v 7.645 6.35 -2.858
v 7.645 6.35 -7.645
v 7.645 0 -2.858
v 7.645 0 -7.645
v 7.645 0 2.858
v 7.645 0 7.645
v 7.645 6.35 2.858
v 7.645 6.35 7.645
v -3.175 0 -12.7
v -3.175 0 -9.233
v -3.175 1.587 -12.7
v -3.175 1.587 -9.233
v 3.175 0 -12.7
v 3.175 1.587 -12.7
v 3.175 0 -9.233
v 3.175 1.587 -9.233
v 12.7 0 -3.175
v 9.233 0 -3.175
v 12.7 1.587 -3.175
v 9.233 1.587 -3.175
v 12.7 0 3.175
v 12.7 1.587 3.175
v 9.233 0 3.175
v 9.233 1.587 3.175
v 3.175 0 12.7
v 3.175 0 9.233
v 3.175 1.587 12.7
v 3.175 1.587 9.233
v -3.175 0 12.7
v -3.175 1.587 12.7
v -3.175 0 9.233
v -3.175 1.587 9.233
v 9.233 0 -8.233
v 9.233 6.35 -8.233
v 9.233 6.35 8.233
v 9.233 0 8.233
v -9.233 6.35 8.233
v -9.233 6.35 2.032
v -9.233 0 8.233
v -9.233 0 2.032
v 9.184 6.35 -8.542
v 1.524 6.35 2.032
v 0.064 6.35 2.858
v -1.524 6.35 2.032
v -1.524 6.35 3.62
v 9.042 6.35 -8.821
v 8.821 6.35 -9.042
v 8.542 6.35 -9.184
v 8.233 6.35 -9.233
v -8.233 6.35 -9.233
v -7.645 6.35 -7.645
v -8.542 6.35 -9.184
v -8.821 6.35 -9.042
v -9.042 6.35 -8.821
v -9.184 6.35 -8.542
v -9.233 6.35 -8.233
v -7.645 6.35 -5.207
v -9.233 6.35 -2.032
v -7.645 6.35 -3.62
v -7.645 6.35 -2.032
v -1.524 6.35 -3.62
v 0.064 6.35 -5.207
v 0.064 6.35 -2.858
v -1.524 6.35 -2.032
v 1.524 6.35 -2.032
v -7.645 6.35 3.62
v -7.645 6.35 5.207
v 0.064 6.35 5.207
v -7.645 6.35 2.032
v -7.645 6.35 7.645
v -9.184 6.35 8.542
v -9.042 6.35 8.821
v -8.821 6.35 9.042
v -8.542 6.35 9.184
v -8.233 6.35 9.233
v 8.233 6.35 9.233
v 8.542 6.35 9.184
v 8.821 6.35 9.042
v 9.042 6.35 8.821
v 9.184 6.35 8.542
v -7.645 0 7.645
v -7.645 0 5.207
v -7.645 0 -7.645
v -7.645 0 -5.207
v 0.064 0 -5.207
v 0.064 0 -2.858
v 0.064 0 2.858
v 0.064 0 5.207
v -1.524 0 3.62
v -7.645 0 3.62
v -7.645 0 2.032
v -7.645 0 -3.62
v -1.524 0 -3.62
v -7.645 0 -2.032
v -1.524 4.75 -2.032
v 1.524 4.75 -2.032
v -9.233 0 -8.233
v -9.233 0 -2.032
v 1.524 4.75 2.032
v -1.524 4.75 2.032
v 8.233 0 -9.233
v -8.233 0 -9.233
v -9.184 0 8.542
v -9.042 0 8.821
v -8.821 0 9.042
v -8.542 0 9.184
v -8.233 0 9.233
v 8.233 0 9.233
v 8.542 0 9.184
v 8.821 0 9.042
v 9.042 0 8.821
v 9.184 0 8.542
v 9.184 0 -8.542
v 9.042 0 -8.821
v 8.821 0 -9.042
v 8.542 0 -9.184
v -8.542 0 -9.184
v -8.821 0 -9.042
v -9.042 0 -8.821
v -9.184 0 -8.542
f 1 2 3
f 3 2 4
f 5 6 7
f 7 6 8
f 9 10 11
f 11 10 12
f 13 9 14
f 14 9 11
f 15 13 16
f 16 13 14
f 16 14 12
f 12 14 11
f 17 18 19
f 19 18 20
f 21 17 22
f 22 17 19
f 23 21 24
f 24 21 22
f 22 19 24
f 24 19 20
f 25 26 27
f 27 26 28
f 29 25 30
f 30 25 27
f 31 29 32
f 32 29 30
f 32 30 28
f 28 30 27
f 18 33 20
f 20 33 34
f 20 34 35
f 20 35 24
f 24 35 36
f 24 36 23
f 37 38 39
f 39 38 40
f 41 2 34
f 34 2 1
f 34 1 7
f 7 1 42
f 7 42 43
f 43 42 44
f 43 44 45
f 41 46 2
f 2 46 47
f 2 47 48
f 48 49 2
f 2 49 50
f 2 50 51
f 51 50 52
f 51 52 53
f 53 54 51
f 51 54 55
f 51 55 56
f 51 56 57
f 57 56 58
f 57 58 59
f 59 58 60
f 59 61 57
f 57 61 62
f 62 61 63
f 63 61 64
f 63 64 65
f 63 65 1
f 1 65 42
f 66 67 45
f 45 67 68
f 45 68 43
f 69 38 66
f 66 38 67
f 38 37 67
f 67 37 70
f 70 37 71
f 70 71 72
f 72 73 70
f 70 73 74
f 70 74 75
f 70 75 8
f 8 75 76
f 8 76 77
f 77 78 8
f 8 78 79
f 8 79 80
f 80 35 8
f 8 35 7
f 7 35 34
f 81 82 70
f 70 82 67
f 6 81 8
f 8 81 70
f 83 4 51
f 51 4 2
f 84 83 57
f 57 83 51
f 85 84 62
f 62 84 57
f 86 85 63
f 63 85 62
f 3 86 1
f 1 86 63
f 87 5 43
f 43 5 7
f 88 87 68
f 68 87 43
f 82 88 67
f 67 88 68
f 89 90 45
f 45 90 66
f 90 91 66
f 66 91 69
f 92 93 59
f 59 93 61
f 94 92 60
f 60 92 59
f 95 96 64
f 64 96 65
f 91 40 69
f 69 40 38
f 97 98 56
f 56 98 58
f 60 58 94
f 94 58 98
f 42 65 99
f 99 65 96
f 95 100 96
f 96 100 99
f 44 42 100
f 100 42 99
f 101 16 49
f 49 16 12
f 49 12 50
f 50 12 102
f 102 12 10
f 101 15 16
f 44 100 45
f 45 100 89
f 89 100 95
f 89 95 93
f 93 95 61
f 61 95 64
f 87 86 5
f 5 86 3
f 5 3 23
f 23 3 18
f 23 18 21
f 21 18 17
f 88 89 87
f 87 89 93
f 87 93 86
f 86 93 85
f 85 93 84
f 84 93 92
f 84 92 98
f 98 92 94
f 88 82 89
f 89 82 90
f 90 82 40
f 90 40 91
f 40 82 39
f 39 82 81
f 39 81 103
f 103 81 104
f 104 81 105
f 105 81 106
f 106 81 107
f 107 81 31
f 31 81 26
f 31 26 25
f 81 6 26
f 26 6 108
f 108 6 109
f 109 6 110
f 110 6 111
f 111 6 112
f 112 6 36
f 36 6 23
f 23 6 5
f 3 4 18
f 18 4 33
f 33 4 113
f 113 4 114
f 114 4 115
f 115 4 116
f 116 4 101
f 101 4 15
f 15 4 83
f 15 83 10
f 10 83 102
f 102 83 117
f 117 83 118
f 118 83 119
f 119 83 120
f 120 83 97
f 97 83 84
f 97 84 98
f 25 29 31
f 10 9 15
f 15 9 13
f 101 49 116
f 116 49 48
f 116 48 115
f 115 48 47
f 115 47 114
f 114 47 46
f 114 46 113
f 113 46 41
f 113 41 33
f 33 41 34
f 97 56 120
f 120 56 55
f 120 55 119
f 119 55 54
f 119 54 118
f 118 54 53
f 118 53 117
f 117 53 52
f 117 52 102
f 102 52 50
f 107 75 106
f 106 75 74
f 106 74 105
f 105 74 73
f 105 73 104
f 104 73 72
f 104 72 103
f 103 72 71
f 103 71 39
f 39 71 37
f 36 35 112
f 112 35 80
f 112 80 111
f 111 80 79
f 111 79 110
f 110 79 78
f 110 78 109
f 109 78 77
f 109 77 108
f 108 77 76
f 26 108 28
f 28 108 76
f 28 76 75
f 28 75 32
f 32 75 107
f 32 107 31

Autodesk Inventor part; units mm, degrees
ref_plane "YZ Plane" through (0, 0, 0) normal (1, 0, 0) x (0, 1, 0)
ref_plane "XZ Plane" through (0, 0, 0) normal (0, 1, 0) x (-1, 0, 0)
ref_plane "XY Plane" through (0, 0, 0) normal (0, 0, 1) x (1, 0, 0)
sketch "Sketch1" plane through (0, 0, 0) normal (0, 1, 0) x (-1, 0, 0)
  line L0 (-9.2329, 9.2329) -> (9.2329, 9.2329)
  line L1 (9.2329, -9.2329) -> (-9.2329, -9.2329)
  line L2 (-9.2329, -9.2329) -> (-9.2329, 9.2329)
  line L3 (-9.2329, 9.2329) -> (9.2329, -9.2329) construction
  line L4 (9.2329, 9.2329) -> (-9.2329, -9.2329) construction
  line L5 (-1.524, 2.032) -> (1.524, 2.032) construction
  line L6 (1.524, 2.032) -> (1.524, -2.032) construction
  line L7 (1.524, -2.032) -> (-1.524, -2.032) construction
  line L8 (-1.524, -2.032) -> (-1.524, 2.032) construction
  line L9 (-1.524, 2.032) -> (1.524, -2.032) construction
  line L10 (1.524, 2.032) -> (-1.524, -2.032) construction
  line L11 (1.524, 2.032) -> (9.2329, 2.032)
  line L12 (9.2329, -2.032) -> (1.524, -2.032)
  line L13 (1.524, -2.032) -> (1.524, 2.032)
  line L14 (9.2329, 9.2329) -> (9.2329, 2.032)
  line L15 (9.2329, -2.032) -> (9.2329, -9.2329)
  point P0 (0, 0)
  dimension "d0" = 18.4658
  dimension "d1" = 3.048
  dimension "d2" = 4.064
extrude "Extrusion1" add sketch "Sketch1" along normal blind 6.35
sketch "Sketch2" plane through (-1.524, 0, -2.032) normal (-1, 0, 0) x (0, 0, 1)
  line L0 (0, 0) -> (4.064, 0) projected
  line L1 (4.064, 0) -> (4.064, 6.35) projected
  line L2 (0, 6.35) -> (4.064, 6.35) projected
  line L3 (0, 0) -> (0, 6.35) projected
  line L4 (0, 4.7498) -> (4.064, 4.7498)
  line L5 (0, 5.5118) -> (0.762, 6.35)
  line L6 (3.302, 6.35) -> (4.064, 5.5118)
  line L7 (2.032, 4.7498) -> (2.032, 6.35) construction
  point P0 (2.032, 0)
  dimension "d17" = 1.6002
  dimension "d19" = 2.54
  dimension "d21" = 0.762
extrude "Extrusion2" cut sketch "Sketch2" against normal blind 3.048 contours L3 L5 L2 L6 L1 L4
sketch "Sketch6" plane through (0, 6.35, 0) normal (0, 1, 0) x (1, 0, 0)
  line L0 (1.524, -1.27) -> (-1.524, -1.27) projected
  line L1 (-1.524, -1.27) -> (-1.524, -2.032) projected
  line L2 (-1.524, -2.032) -> (-9.2329, -2.032) projected
  line L3 (-9.2329, -2.032) -> (-9.2329, -9.2329) projected
  line L4 (-9.2329, -9.2329) -> (9.2329, -9.2329) projected
  line L5 (9.2329, -9.2329) -> (9.2329, 9.2329) projected
  line L6 (9.2329, 9.2329) -> (-9.2329, 9.2329) projected
  line L7 (-9.2329, 9.2329) -> (-9.2329, 2.032) projected
  line L8 (-9.2329, 2.032) -> (-1.524, 2.032) projected
  line L9 (-1.524, 2.032) -> (-1.524, 1.27) projected
  line L10 (-1.524, 1.27) -> (1.524, 1.27) projected
  line L11 (1.524, 1.27) -> (1.524, -1.27) projected
  line L12 (-7.6454, 7.6454) -> (7.6454, 7.6454)
  line L13 (7.6454, 7.6454) -> (7.6454, -7.6454)
  line L14 (7.6454, -7.6454) -> (-7.6454, -7.6454)
  line L15 (-7.6454, -7.6454) -> (-7.6454, -3.6195)
  line L16 (-7.6454, -3.6195) -> (0.0635, -3.6195)
  line L17 (0.0635, -3.6195) -> (0.0635, -2.8575)
  line L18 (0.0635, -2.8575) -> (3.1115, -2.8575)
  line L19 (3.1115, -2.8575) -> (3.1115, 2.8575)
  line L20 (3.1115, 2.8575) -> (0.0635, 2.8575)
  line L21 (0.0635, 2.8575) -> (0.0635, 3.6195)
  line L22 (0.0635, 3.6195) -> (-7.6454, 3.6195)
  line L23 (-7.6454, 3.6195) -> (-7.6454, 7.6454)
  line L24 (-7.6454, 3.6195) -> (-1.524, 3.6195)
  line L25 (-1.524, 3.6195) -> (-1.524, -3.6195)
  line L26 (-1.524, -3.6195) -> (-7.6454, -3.6195)
  line L27 (-7.6454, -3.6195) -> (-7.6454, 3.6195)
  point P0 (0, 0)
  point P1 (-7.6454, -2.032)
  point P2 (-7.6454, 2.032)
  point P3 (-1.524, 2.032)
  dimension "d22" = 1.5875
extrude "Extrusion5" cut sketch "Sketch6" against normal through all contours L25 L16 L27 L2 | L8 L27 L22 L25
sketch "Sketch7" plane through (0, 6.35, 0) normal (0, 1, 0) x (1, 0, 0)
  line L0 (-7.6454, -3.6195) -> (-7.6454, -2.032) projected
  line L1 (-7.6454, -2.032) -> (-9.2329, -2.032) projected
  line L2 (-9.2329, -2.032) -> (-9.2329, -9.2329) projected
  line L3 (-9.2329, -9.2329) -> (9.2329, -9.2329) projected
  line L4 (9.2329, -9.2329) -> (9.2329, 9.2329) projected
  line L5 (9.2329, 9.2329) -> (-9.2329, 9.2329) projected
  line L6 (-9.2329, 9.2329) -> (-9.2329, 2.032) projected
  line L7 (-9.2329, 2.032) -> (-7.6454, 2.032) projected
  line L8 (-7.6454, 2.032) -> (-7.6454, 3.6195) projected
  line L9 (-7.6454, 3.6195) -> (-1.524, 3.6195) projected
  line L10 (-1.524, 3.6195) -> (-1.524, 1.27) projected
  line L11 (-1.524, 1.27) -> (1.524, 1.27) projected
  line L12 (1.524, 1.27) -> (1.524, -1.27) projected
  line L13 (1.524, -1.27) -> (-1.524, -1.27) projected
  line L14 (-1.524, -1.27) -> (-1.524, -3.6195) projected
  line L15 (-1.524, -3.6195) -> (-7.6454, -3.6195) projected
  line L16 (-7.6454, 7.6454) -> (7.6454, 7.6454)
  line L17 (7.6454, 7.6454) -> (7.6454, -7.6454)
  line L18 (7.6454, -7.6454) -> (-7.6454, -7.6454)
  line L19 (-7.6454, -7.6454) -> (-7.6454, -5.207)
  line L20 (-7.6454, -5.207) -> (0.0635, -5.207)
  line L21 (0.0635, -5.207) -> (0.0635, -2.8575)
  line L22 (0.0635, -2.8575) -> (3.1115, -2.8575)
  line L23 (3.1115, -2.8575) -> (3.1115, 2.8575)
  line L24 (3.1115, 2.8575) -> (0.0635, 2.8575)
  line L25 (0.0635, 2.8575) -> (0.0635, 5.207)
  line L26 (0.0635, 5.207) -> (-7.6454, 5.207)
  line L27 (-7.6454, 5.207) -> (-7.6454, 7.6454)
  point P0 (0, 0)
  dimension "d25" = 1.5875
extrude "Extrusion6" cut sketch "Sketch7" against normal through all contours L16 L17 L18 L19 L20 L21 L22 L23 L24 L25 L26 L27
sketch "Sketch8" plane through (0, 0, 0) normal (0, -1, 0) x (1, 0, 0)
  line L0 (-3.175, -12.7) -> (3.175, -12.7)
  line L1 (3.175, -12.7) -> (3.175, 12.7)
  line L2 (3.175, 12.7) -> (-3.175, 12.7)
  line L3 (-3.175, 12.7) -> (-3.175, -12.7)
  line L4 (-3.175, -12.7) -> (3.175, 12.7) construction
  line L5 (3.175, -12.7) -> (-3.175, 12.7) construction
  line L6 (0.0635, -5.207) -> (0.0635, -2.8575) projected
  line L7 (0.0635, -2.8575) -> (3.1115, -2.8575) projected
  line L8 (3.1115, -2.8575) -> (3.1115, 2.8575) projected
  line L9 (3.1115, 2.8575) -> (0.0635, 2.8575) projected
  line L10 (0.0635, 2.8575) -> (0.0635, 5.207) projected
  line L11 (0.0635, 5.207) -> (-7.6454, 5.207) projected
  line L12 (-7.6454, 5.207) -> (-7.6454, 7.6454) projected
  line L13 (-7.6454, 7.6454) -> (7.6454, 7.6454) projected
  line L14 (7.6454, 7.6454) -> (7.6454, -7.6454) projected
  line L15 (7.6454, -7.6454) -> (-7.6454, -7.6454) projected
  line L16 (-7.6454, -7.6454) -> (-7.6454, -5.207) projected
  line L17 (-7.6454, -5.207) -> (0.0635, -5.207) projected
  line L18 (-7.6454, 2.032) -> (-7.6454, 3.6195) projected
  line L19 (-7.6454, 3.6195) -> (-1.524, 3.6195) projected
  line L20 (-1.524, -3.6195) -> (-1.524, 3.6195) projected
  line L21 (-1.524, -3.6195) -> (-7.6454, -3.6195) projected
  line L22 (-7.6454, -3.6195) -> (-7.6454, -2.032) projected
  line L23 (-9.2329, -2.032) -> (-7.6454, -2.032) projected
  line L24 (-9.2329, -9.2329) -> (-9.2329, -2.032) projected
  line L25 (9.2329, -9.2329) -> (-9.2329, -9.2329) projected
  line L26 (9.2329, 9.2329) -> (9.2329, -9.2329) projected
  line L27 (-9.2329, 9.2329) -> (9.2329, 9.2329) projected
  line L28 (-9.2329, 2.032) -> (-9.2329, 9.2329) projected
  line L29 (-7.6454, 2.032) -> (-9.2329, 2.032) projected
  line L30 (-12.7, 3.175) -> (-12.7, -3.175)
  line L31 (-12.7, -3.175) -> (12.7, -3.175)
  line L32 (12.7, -3.175) -> (12.7, 3.175)
  line L33 (12.7, 3.175) -> (-12.7, 3.175)
  point P0 (0, 0)
  point P1 (3.175, -9.2329)
  point P2 (-3.175, -9.2329)
  point P3 (9.2329, 3.175)
  point P4 (9.2329, -3.175)
  point P5 (-3.175, 9.2329)
  point P6 (3.175, 9.2329)
  dimension "d28" = 6.35
  dimension "d29" = 25.4
  dimension "d32" = 90
extrude "Extrusion7" add sketch "Sketch8" against normal blind 1.5875 contours L3 L25 L1 L0 | L26 L33 L32 L31 | L27 L3 L2 L1
sketch "Sketch9" plane through (0, 0, 0) normal (0, -1, 0) x (1, 0, 0)
  line L0 (-1.524, -2.032) -> (1.524, -2.032) projected
  line L1 (0.0635, -5.207) -> (0.0635, -2.8575) projected
  line L2 (0.0635, -2.8575) -> (3.1115, -2.8575) projected
  line L3 (3.1115, -2.8575) -> (3.1115, 2.8575) projected
  line L4 (3.1115, 2.8575) -> (0.0635, 2.8575) projected
  line L5 (0.0635, 2.8575) -> (0.0635, 5.207) projected
  line L6 (0.0635, 5.207) -> (-7.6454, 5.207) projected
  line L7 (-7.6454, 5.207) -> (-7.6454, 7.6454) projected
  line L8 (-7.6454, 7.6454) -> (7.6454, 7.6454) projected
  line L9 (7.6454, 7.6454) -> (7.6454, -7.6454) projected
  line L10 (7.6454, -7.6454) -> (-7.6454, -7.6454) projected
  line L11 (-7.6454, -7.6454) -> (-7.6454, -5.207) projected
  line L12 (-7.6454, -5.207) -> (0.0635, -5.207) projected
  line L13 (-7.6454, 2.032) -> (-7.6454, 3.6195) projected
  line L14 (-7.6454, 3.6195) -> (-1.524, 3.6195) projected
  line L15 (-1.524, -3.6195) -> (-1.524, 3.6195) projected
  line L16 (-1.524, -3.6195) -> (-7.6454, -3.6195) projected
  line L17 (-7.6454, -3.6195) -> (-7.6454, -2.032) projected
  line L18 (-9.2329, -2.032) -> (-7.6454, -2.032) projected
  line L19 (-9.2329, -9.2329) -> (-9.2329, -2.032) projected
  line L20 (-3.175, -9.2329) -> (-9.2329, -9.2329) projected
  line L21 (-3.175, -9.2329) -> (-3.175, -12.7) projected
  line L22 (-3.175, -12.7) -> (3.175, -12.7) projected
  line L23 (3.175, -12.7) -> (3.175, -9.2329) projected
  line L24 (9.2329, -9.2329) -> (3.175, -9.2329) projected
  line L25 (9.2329, -3.175) -> (9.2329, -9.2329) projected
  line L26 (9.2329, -3.175) -> (12.7, -3.175) projected
  line L27 (12.7, -3.175) -> (12.7, 3.175) projected
  line L28 (12.7, 3.175) -> (9.2329, 3.175) projected
  line L29 (9.2329, 9.2329) -> (9.2329, 3.175) projected
  line L30 (3.175, 9.2329) -> (9.2329, 9.2329) projected
  line L31 (3.175, 9.2329) -> (3.175, 12.7) projected
  line L32 (3.175, 12.7) -> (-3.175, 12.7) projected
  line L33 (-3.175, 12.7) -> (-3.175, 9.2329) projected
  line L34 (-9.2329, 9.2329) -> (-3.175, 9.2329) projected
  line L35 (-9.2329, 2.032) -> (-9.2329, 9.2329) projected
  line L36 (-7.6454, 2.032) -> (-9.2329, 2.032) projected
  line L37 (3.1115, -2.8575) -> (7.6454, -2.8575)
  line L38 (7.6454, -2.8575) -> (7.6454, 2.8575)
  line L39 (7.6454, 2.8575) -> (3.1115, 2.8575)
  line L40 (3.1115, 2.8575) -> (3.1115, -2.8575)
  line L41 (3.1115, 2.8575) -> (0.0635, 2.8575) projected
  point P0 (0, 0)
  point P1 (7.6454, 2.8575)
extrude "Extrusion8" add sketch "Sketch9" against normal up to surface (6.35 mm away) contours L3 L39 L9 L37
sketch "Sketch10" plane through (-1.524, 4.7498, 2.032) normal (-1, 0, 0) x (0, 0, 1)
  line L0 (-0.762, 1.6002) -> (0, 0.762) projected
  line L1 (0, 0) -> (0, 0.762) projected
  line L2 (0, 0) -> (-4.064, 0) projected
  line L3 (-4.064, 0.762) -> (-4.064, 0) projected
  line L4 (-4.064, 0.762) -> (-3.302, 1.6002) projected
  line L5 (-5.6515, 1.6002) -> (-3.302, 1.6002) projected
  line L6 (-5.6515, 1.6002) -> (-5.6515, -4.7498) projected
  line L7 (-5.6515, -4.7498) -> (1.5875, -4.7498) projected
  line L8 (1.5875, 1.6002) -> (1.5875, -4.7498) projected
  line L9 (-0.762, 1.6002) -> (1.5875, 1.6002) projected
  line L10 (-11.2649, -4.7498) -> (-4.064, -4.7498) projected
  line L11 (-4.064, -4.7498) -> (-4.064, 1.6002) projected
  line L12 (-11.2649, 1.6002) -> (-4.064, 1.6002) projected
  line L13 (-11.2649, -4.7498) -> (-11.2649, 1.6002) projected
  line L14 (0, -4.7498) -> (7.2009, -4.7498) projected
  line L15 (7.2009, -4.7498) -> (7.2009, 1.6002) projected
  line L16 (0, 1.6002) -> (7.2009, 1.6002) projected
  line L17 (0, -4.7498) -> (0, 1.6002) projected
  point P0 (-2.032, -4.7498)
extrude "Extrusion9" cut sketch "Sketch10" against normal up to surface (3.048 mm away) contours L9 L17 L0 | L11 L5 L4
fillet "Fillet3" radius 1 4 edges at (-9.2329, 3.175, -9.2329) (-9.2329, 3.175, 9.2329) (9.2329, 3.175, 9.2329) (9.2329, 3.175, -9.2329)
properties part number "hall holder"
